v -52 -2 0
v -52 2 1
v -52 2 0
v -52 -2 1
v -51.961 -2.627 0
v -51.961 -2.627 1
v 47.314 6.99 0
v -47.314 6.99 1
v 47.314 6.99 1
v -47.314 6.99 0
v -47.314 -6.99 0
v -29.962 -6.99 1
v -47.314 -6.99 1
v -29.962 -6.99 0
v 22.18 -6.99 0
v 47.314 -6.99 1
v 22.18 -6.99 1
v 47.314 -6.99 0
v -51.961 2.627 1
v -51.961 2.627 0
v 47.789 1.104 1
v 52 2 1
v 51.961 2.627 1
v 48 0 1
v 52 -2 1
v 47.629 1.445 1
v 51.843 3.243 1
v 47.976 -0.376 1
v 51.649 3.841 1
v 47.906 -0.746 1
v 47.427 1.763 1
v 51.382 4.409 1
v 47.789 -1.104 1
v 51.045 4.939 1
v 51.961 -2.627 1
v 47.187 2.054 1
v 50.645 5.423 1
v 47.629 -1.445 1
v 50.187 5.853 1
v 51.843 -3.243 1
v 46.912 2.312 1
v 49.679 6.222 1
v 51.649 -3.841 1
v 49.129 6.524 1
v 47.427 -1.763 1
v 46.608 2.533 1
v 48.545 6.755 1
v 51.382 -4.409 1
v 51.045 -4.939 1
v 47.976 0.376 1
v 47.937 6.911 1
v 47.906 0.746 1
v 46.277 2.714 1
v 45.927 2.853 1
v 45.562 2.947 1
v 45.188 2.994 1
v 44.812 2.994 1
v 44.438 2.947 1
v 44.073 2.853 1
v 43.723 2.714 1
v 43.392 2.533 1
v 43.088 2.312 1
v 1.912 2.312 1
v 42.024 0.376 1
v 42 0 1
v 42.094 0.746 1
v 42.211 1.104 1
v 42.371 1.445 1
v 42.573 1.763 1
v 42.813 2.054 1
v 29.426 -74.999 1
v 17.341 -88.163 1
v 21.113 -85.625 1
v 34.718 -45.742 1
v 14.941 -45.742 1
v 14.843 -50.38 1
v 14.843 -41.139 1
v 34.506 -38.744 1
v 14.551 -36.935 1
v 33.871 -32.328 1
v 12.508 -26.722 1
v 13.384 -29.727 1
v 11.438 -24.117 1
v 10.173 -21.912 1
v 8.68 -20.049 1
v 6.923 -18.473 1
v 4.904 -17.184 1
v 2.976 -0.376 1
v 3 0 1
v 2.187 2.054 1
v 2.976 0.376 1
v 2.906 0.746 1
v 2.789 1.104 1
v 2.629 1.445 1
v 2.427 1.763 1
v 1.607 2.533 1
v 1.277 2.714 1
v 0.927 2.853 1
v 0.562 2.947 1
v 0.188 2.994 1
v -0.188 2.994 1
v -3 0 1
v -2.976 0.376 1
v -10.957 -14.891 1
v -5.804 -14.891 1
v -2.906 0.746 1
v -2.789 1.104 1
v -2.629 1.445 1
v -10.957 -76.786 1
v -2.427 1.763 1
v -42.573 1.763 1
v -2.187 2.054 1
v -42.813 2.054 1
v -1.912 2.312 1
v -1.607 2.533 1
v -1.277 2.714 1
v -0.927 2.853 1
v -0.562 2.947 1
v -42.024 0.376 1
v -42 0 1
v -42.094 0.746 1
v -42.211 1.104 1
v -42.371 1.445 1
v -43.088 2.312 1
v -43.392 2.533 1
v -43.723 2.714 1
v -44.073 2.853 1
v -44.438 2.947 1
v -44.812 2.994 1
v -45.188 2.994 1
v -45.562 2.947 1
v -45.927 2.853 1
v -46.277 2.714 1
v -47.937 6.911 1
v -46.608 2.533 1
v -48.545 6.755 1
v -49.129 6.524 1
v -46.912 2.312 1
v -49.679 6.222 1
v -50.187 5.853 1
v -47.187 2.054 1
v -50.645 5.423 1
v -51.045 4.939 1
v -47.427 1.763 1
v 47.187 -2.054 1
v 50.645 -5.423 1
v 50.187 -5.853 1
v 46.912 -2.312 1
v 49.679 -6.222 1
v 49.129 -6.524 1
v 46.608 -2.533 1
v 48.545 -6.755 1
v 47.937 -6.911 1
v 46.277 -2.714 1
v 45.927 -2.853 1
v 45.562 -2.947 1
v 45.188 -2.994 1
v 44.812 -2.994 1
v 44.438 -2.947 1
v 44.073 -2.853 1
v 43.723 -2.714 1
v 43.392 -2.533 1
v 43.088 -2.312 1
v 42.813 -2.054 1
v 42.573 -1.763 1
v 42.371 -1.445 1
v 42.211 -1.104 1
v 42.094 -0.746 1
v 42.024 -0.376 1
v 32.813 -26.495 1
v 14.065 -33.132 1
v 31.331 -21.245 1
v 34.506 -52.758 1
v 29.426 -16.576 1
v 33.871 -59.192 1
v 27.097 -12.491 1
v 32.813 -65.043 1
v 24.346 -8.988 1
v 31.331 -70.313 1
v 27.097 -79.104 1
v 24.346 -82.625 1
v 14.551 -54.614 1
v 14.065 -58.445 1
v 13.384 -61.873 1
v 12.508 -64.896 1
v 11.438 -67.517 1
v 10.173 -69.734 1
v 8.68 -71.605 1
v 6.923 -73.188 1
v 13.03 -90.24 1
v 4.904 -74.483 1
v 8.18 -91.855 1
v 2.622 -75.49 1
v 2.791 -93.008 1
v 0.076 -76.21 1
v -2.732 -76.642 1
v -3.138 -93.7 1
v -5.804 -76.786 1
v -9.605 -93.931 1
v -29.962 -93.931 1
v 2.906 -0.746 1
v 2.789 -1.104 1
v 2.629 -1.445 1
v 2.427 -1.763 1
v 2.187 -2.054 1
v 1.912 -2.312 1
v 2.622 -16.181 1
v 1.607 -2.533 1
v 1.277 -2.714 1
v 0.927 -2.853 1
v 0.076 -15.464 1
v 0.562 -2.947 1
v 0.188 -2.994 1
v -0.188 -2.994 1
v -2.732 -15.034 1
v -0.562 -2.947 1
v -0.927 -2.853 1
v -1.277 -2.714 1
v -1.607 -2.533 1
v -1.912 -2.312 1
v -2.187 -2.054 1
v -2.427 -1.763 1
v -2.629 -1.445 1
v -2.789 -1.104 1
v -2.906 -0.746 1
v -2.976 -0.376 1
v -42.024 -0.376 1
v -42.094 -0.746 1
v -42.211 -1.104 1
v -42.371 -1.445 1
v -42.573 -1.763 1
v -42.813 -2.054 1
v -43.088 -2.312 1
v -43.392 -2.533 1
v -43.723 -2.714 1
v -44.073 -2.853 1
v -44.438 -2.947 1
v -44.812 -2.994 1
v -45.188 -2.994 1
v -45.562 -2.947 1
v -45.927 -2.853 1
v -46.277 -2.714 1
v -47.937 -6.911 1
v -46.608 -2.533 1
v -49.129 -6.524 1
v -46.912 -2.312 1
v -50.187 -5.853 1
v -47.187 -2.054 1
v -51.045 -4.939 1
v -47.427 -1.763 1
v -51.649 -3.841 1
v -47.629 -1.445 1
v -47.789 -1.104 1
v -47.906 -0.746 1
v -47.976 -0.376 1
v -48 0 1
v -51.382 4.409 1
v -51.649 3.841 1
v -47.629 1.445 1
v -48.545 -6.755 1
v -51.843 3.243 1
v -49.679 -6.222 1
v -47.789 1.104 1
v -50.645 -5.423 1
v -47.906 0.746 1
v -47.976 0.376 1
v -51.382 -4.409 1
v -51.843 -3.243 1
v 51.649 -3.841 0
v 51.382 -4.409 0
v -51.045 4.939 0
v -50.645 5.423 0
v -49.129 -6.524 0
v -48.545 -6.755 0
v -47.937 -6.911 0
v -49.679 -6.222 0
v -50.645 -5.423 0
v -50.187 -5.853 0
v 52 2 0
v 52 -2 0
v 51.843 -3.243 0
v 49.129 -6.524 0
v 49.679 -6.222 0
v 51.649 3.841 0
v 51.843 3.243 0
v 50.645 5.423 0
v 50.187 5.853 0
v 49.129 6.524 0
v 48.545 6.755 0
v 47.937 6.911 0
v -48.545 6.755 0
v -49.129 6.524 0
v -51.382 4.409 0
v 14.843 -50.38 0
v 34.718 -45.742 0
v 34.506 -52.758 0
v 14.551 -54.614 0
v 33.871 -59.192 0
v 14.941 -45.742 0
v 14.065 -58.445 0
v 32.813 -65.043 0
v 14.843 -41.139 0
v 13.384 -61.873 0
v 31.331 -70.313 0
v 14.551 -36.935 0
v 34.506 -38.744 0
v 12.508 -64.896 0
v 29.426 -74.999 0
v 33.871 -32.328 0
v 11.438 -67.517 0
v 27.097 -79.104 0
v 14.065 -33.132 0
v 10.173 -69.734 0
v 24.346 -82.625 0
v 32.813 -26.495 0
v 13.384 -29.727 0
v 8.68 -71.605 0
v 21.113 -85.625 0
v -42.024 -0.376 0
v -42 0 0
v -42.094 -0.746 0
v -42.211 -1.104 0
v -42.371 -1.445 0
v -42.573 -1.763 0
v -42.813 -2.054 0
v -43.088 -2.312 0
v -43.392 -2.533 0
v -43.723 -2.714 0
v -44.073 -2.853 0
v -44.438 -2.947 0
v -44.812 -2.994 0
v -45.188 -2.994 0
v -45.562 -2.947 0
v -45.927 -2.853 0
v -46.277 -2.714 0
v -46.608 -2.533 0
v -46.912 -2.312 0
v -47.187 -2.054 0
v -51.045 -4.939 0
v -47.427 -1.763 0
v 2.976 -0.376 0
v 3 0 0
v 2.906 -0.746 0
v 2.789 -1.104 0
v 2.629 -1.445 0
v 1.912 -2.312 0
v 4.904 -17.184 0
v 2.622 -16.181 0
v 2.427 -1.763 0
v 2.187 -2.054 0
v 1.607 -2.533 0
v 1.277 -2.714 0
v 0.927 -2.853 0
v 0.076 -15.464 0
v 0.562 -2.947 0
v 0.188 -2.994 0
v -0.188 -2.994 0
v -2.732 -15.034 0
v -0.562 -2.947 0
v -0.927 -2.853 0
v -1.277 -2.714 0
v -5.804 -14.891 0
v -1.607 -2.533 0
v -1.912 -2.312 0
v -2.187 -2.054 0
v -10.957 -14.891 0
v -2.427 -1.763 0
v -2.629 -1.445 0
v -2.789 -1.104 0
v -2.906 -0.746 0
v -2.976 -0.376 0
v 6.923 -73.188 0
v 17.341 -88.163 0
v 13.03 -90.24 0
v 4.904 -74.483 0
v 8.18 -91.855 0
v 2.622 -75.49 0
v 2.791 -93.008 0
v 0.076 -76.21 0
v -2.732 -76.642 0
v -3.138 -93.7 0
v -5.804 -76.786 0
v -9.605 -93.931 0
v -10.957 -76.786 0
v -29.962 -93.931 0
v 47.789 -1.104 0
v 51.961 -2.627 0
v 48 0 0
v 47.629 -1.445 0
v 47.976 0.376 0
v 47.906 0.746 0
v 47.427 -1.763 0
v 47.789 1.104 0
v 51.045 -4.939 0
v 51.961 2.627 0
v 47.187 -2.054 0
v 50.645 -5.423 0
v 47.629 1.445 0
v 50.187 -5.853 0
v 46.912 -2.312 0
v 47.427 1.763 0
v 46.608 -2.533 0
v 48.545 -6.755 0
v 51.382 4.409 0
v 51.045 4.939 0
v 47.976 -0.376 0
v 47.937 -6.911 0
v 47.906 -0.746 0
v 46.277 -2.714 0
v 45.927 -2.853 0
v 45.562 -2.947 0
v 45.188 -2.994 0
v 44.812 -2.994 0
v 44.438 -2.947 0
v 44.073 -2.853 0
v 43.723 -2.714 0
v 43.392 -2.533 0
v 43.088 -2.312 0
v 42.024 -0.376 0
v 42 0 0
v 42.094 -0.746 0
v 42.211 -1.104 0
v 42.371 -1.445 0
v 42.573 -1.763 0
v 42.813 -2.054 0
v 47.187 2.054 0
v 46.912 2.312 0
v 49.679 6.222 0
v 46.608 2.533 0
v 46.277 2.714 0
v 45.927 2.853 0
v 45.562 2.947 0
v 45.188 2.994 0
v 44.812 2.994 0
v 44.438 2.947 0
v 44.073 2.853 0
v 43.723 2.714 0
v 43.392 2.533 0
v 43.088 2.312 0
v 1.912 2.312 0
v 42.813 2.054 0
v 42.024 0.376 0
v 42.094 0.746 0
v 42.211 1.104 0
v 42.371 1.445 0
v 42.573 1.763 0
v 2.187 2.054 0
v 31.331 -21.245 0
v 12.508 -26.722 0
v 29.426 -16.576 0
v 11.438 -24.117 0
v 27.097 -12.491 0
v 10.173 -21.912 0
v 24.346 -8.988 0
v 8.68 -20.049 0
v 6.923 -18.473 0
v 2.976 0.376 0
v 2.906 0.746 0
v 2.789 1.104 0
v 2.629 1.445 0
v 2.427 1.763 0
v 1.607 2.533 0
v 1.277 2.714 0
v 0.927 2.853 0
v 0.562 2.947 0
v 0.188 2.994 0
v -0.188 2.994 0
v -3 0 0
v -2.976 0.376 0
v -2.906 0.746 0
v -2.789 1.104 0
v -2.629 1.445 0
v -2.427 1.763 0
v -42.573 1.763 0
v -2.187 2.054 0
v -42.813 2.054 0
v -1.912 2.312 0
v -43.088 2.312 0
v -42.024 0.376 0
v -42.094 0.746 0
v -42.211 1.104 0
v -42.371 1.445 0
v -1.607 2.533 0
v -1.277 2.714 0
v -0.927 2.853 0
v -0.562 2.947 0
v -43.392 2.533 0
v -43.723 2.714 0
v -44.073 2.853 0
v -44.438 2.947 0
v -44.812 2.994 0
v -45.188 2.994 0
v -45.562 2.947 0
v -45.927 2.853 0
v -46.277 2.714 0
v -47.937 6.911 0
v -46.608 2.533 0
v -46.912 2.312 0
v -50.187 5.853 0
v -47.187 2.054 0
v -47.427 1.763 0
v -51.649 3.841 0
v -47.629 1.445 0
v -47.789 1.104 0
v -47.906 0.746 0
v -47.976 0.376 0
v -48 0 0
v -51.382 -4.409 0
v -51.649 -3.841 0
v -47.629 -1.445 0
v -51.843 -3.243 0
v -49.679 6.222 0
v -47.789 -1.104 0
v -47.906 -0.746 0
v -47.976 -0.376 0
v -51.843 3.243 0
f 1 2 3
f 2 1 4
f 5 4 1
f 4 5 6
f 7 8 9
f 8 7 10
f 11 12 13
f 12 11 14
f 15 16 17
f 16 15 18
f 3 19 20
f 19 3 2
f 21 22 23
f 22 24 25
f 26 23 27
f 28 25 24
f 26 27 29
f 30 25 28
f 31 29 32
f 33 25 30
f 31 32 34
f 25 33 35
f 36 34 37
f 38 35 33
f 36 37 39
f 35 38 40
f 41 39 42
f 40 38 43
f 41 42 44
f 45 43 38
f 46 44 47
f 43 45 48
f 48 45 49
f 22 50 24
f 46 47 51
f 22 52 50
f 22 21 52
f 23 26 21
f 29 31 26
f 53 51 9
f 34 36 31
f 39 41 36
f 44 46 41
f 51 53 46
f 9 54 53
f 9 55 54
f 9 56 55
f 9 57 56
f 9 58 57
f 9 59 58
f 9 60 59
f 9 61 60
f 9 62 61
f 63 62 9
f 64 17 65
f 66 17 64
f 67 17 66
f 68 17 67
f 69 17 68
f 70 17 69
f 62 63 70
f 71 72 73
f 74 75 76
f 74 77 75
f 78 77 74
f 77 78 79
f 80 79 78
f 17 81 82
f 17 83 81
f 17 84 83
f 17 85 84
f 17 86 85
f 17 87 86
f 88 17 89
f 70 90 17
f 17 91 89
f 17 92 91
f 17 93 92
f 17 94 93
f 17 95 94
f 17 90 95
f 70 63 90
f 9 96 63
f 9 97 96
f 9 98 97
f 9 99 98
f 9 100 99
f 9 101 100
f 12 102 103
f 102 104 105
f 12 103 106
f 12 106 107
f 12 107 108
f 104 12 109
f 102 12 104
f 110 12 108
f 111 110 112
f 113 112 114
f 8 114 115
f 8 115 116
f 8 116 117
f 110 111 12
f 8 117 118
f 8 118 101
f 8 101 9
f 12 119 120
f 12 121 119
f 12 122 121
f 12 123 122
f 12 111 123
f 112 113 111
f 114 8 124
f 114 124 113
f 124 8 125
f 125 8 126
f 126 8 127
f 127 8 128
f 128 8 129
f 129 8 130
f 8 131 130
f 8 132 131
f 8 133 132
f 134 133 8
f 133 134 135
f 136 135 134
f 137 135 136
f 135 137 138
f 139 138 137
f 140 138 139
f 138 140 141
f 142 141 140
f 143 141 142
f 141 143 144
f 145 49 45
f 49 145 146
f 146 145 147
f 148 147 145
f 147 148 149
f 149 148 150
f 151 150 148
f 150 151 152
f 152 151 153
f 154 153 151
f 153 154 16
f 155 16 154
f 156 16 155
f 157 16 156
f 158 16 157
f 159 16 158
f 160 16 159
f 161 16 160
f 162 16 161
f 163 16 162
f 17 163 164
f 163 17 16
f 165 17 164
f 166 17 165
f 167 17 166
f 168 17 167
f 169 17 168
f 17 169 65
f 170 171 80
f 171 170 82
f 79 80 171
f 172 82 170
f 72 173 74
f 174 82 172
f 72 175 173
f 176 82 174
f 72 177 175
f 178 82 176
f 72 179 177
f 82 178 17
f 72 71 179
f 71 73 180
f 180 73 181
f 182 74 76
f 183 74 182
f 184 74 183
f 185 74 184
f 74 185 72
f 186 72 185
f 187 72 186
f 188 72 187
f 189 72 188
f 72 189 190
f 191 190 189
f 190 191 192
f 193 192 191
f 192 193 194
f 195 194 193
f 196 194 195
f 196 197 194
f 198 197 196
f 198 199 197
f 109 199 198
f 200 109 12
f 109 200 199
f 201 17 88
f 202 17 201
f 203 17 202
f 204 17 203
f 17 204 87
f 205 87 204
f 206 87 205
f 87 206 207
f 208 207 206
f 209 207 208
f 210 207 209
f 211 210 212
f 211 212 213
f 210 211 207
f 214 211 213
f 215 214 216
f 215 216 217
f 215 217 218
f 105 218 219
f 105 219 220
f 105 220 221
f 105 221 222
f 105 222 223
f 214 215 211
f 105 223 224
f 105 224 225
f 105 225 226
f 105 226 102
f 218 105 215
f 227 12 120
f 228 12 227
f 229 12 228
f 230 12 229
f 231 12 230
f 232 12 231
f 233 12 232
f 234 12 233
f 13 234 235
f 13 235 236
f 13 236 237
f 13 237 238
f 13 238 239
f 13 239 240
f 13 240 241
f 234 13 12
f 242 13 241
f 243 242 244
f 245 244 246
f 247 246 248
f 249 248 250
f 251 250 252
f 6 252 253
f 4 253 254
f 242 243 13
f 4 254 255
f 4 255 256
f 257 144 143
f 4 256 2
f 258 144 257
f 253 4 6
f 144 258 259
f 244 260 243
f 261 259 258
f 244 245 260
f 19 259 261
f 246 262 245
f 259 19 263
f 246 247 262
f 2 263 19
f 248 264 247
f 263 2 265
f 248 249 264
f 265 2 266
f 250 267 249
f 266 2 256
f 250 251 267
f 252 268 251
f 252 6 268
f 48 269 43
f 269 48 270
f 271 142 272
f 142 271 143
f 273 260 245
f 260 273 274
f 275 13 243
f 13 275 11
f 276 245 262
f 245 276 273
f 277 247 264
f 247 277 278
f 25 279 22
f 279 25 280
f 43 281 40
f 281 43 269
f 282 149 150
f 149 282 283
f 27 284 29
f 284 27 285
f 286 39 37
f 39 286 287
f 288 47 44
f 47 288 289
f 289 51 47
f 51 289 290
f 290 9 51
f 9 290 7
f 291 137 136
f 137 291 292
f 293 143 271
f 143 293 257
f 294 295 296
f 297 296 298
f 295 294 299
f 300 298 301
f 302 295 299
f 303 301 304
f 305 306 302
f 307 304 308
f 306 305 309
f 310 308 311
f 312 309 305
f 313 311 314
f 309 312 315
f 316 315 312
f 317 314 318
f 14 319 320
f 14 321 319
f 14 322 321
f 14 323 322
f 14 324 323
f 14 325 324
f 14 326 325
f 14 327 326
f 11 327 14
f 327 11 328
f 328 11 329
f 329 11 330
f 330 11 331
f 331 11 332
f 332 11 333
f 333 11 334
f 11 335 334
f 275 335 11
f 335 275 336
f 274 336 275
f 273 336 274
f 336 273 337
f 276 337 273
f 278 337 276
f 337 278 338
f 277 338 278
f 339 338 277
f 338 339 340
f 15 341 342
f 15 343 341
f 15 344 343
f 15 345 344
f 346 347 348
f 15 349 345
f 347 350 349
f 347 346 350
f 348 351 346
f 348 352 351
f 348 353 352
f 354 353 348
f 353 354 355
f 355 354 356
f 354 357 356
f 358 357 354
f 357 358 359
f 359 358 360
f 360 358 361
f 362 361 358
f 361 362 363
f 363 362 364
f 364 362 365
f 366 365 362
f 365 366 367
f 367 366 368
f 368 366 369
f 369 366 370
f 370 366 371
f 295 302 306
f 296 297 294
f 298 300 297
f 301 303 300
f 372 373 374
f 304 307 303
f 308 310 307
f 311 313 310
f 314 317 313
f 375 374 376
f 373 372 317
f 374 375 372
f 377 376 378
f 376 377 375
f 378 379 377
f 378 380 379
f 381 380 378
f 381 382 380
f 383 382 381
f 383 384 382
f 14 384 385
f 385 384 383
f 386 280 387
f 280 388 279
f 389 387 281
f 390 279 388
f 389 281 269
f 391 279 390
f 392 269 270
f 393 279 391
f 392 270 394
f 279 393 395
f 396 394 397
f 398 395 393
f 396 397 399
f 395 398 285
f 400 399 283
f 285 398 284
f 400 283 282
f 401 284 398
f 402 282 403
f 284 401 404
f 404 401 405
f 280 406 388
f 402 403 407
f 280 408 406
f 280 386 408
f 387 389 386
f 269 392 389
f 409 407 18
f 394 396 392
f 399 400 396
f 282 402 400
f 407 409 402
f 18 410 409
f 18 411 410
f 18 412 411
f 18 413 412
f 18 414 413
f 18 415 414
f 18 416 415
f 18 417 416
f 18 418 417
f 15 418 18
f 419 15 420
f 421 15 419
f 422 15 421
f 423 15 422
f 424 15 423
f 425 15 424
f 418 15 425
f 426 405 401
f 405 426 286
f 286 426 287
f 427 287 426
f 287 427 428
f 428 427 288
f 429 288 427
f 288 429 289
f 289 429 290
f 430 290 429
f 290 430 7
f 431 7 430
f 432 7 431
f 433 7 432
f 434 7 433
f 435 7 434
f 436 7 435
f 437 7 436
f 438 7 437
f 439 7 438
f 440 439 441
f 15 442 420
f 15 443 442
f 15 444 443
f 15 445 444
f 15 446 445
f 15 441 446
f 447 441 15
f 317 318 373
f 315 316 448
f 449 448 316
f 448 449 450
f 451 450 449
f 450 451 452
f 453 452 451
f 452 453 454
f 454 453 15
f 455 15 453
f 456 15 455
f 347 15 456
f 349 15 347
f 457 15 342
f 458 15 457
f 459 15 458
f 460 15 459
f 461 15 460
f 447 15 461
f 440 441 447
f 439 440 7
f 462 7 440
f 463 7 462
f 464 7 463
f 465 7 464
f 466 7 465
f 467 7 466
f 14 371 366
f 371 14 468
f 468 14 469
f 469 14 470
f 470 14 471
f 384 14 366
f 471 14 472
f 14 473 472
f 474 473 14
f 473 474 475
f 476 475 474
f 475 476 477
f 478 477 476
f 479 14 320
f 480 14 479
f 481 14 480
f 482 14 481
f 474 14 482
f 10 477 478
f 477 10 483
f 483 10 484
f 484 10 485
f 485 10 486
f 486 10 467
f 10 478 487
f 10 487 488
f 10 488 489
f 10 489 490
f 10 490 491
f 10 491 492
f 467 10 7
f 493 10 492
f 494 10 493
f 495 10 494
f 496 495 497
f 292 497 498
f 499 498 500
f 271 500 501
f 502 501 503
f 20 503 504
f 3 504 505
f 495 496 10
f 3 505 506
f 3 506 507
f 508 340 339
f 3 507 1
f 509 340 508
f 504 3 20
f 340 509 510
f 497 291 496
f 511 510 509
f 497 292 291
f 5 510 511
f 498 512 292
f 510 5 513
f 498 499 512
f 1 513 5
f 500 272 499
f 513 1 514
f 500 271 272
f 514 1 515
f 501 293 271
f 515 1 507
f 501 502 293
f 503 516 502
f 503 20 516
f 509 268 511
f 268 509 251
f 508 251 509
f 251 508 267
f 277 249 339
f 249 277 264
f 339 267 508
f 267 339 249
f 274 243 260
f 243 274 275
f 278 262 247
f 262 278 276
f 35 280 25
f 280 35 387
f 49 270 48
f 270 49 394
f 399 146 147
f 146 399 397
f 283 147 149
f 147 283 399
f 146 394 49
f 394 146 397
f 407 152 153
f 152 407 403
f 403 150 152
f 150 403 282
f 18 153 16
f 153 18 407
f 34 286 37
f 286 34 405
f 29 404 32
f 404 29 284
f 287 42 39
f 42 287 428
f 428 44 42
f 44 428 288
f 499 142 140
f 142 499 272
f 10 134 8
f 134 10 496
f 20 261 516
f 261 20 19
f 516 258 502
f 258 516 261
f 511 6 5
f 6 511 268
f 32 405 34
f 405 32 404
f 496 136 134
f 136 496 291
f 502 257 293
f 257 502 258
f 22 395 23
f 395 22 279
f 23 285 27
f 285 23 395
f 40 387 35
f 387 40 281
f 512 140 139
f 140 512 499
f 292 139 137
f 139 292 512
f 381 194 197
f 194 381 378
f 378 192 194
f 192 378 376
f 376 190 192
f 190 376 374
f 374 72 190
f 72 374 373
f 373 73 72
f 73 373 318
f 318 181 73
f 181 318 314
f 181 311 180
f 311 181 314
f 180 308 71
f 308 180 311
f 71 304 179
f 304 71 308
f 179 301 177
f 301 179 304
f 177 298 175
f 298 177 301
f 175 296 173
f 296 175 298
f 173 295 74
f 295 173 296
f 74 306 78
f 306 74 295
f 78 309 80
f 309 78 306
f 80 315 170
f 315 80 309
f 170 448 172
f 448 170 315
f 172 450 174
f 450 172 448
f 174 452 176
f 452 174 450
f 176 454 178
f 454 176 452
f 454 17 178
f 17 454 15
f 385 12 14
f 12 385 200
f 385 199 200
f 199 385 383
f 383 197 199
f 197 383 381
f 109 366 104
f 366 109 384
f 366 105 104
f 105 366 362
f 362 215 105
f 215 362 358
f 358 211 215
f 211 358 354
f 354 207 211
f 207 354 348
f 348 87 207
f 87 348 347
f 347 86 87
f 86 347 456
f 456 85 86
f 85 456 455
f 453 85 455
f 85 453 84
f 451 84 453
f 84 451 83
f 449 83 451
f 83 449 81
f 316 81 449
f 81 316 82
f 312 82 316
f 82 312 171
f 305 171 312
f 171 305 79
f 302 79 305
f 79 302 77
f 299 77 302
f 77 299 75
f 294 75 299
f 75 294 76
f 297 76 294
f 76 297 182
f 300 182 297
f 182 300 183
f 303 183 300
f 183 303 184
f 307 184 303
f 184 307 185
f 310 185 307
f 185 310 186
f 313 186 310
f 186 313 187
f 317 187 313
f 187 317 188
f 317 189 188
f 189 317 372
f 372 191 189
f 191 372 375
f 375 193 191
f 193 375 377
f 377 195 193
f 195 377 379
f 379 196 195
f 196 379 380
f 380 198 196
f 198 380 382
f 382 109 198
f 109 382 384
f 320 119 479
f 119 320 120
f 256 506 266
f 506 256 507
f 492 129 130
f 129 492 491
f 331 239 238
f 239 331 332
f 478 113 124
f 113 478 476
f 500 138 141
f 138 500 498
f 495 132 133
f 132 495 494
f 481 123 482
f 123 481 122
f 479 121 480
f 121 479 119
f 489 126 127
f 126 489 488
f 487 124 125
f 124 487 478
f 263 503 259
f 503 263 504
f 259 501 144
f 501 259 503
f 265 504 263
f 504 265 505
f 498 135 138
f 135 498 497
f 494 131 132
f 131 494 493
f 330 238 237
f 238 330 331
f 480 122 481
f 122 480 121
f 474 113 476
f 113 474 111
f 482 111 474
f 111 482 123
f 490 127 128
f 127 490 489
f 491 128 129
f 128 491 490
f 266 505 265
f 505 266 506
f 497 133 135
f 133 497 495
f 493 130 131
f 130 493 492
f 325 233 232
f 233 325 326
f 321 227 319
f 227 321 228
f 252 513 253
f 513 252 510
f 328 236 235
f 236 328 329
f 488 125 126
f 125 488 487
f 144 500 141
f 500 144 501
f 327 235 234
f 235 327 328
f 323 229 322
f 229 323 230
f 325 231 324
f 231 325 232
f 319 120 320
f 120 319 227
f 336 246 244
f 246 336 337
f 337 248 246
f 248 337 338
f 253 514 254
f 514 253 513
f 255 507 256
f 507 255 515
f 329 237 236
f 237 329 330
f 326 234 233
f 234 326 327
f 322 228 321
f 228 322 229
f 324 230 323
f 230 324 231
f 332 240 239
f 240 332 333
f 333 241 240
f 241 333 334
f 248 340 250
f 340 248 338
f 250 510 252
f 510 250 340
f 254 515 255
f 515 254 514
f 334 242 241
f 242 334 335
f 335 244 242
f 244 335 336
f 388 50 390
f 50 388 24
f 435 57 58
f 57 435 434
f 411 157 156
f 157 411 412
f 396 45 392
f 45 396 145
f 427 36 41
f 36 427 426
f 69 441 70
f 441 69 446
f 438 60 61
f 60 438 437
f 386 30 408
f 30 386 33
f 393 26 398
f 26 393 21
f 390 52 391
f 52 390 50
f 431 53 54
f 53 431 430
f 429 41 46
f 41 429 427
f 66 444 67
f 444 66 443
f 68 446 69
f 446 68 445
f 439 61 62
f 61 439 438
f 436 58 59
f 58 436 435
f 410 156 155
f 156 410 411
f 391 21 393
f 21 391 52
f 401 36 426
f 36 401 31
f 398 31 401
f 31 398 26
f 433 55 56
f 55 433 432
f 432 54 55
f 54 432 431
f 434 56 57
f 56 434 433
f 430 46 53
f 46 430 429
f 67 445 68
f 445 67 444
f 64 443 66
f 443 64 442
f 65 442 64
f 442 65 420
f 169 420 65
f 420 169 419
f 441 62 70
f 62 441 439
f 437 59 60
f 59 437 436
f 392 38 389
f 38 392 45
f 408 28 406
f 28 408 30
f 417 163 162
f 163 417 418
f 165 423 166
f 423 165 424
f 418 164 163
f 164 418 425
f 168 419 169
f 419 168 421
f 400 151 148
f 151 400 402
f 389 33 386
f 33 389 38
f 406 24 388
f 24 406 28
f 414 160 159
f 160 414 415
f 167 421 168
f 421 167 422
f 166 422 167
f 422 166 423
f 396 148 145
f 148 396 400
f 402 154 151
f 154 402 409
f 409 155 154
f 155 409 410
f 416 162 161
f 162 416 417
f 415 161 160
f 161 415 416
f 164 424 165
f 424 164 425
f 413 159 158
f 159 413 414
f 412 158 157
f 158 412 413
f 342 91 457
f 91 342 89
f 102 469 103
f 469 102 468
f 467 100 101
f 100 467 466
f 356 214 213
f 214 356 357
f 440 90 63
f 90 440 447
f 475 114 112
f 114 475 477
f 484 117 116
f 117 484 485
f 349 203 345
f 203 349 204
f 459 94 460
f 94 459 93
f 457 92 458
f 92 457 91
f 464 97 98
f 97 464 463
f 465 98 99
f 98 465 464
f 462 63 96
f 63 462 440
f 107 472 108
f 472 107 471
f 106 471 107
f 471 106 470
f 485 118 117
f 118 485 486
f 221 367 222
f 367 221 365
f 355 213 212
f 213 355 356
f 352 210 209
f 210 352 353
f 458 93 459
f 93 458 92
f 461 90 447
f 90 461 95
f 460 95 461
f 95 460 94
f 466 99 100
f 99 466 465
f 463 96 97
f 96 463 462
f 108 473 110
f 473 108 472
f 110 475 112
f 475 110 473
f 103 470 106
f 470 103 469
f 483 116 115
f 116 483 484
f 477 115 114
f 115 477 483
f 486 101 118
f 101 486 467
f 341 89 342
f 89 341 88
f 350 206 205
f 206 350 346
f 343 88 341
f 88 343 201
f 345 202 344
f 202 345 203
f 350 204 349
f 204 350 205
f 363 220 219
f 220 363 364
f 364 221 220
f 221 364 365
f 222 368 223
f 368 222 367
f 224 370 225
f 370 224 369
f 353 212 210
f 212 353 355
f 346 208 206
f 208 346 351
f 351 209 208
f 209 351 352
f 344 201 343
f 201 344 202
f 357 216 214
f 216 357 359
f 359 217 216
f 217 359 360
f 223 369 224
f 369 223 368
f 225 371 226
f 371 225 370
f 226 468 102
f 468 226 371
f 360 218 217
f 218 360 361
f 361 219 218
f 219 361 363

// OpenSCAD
$fn = 50;


difference() {
	union() {
		translate(v = [0, 0, 0]) {
			rotate(a = [0, 0, 0]) {
				hull() {
					translate(v = [-47.0000000000, 2.0000000000, 0]) {
						rotate(a = [0, 0, 0]) {
							translate(v = [0, 0, 0]) {
								rotate(a = [0, 0, 0]) {
									cylinder(h = 1, r = 5);
								}
							}
						}
					}
					translate(v = [47.0000000000, 2.0000000000, 0]) {
						rotate(a = [0, 0, 0]) {
							translate(v = [0, 0, 0]) {
								rotate(a = [0, 0, 0]) {
									cylinder(h = 1, r = 5);
								}
							}
						}
					}
					translate(v = [-47.0000000000, -2.0000000000, 0]) {
						rotate(a = [0, 0, 0]) {
							translate(v = [0, 0, 0]) {
								rotate(a = [0, 0, 0]) {
									cylinder(h = 1, r = 5);
								}
							}
						}
					}
					translate(v = [47.0000000000, -2.0000000000, 0]) {
						rotate(a = [0, 0, 0]) {
							translate(v = [0, 0, 0]) {
								rotate(a = [0, 0, 0]) {
									cylinder(h = 1, r = 5);
								}
							}
						}
					}
				}
			}
		}
		translate(v = [0, 0, 0]) {
			rotate(a = [0, 0, 0]) {
				linear_extrude(height = 1) {
					text(font = "DejaVu Sans Mono:style=Bold", halign = "center", size = 95, text = "D", valign = "top");
				}
			}
		}
	}
	union() {
		translate(v = [-45.0000000000, 0.0000000000, -125.0000000000]) {
			rotate(a = [0, 0, 0]) {
				cylinder(h = 250, r = 3.0000000000);
			}
		}
		translate(v = [45.0000000000, 0.0000000000, -125.0000000000]) {
			rotate(a = [0, 0, 0]) {
				cylinder(h = 250, r = 3.0000000000);
			}
		}
		translate(v = [45.0000000000, 0.0000000000, -125.0000000000]) {
			rotate(a = [0, 0, 0]) {
				cylinder(h = 250, r = 3.0000000000);
			}
		}
		translate(v = [0, 0, -125.0000000000]) {
			rotate(a = [0, 0, 0]) {
				cylinder(h = 250, r = 3.0000000000);
			}
		}
	}
}
